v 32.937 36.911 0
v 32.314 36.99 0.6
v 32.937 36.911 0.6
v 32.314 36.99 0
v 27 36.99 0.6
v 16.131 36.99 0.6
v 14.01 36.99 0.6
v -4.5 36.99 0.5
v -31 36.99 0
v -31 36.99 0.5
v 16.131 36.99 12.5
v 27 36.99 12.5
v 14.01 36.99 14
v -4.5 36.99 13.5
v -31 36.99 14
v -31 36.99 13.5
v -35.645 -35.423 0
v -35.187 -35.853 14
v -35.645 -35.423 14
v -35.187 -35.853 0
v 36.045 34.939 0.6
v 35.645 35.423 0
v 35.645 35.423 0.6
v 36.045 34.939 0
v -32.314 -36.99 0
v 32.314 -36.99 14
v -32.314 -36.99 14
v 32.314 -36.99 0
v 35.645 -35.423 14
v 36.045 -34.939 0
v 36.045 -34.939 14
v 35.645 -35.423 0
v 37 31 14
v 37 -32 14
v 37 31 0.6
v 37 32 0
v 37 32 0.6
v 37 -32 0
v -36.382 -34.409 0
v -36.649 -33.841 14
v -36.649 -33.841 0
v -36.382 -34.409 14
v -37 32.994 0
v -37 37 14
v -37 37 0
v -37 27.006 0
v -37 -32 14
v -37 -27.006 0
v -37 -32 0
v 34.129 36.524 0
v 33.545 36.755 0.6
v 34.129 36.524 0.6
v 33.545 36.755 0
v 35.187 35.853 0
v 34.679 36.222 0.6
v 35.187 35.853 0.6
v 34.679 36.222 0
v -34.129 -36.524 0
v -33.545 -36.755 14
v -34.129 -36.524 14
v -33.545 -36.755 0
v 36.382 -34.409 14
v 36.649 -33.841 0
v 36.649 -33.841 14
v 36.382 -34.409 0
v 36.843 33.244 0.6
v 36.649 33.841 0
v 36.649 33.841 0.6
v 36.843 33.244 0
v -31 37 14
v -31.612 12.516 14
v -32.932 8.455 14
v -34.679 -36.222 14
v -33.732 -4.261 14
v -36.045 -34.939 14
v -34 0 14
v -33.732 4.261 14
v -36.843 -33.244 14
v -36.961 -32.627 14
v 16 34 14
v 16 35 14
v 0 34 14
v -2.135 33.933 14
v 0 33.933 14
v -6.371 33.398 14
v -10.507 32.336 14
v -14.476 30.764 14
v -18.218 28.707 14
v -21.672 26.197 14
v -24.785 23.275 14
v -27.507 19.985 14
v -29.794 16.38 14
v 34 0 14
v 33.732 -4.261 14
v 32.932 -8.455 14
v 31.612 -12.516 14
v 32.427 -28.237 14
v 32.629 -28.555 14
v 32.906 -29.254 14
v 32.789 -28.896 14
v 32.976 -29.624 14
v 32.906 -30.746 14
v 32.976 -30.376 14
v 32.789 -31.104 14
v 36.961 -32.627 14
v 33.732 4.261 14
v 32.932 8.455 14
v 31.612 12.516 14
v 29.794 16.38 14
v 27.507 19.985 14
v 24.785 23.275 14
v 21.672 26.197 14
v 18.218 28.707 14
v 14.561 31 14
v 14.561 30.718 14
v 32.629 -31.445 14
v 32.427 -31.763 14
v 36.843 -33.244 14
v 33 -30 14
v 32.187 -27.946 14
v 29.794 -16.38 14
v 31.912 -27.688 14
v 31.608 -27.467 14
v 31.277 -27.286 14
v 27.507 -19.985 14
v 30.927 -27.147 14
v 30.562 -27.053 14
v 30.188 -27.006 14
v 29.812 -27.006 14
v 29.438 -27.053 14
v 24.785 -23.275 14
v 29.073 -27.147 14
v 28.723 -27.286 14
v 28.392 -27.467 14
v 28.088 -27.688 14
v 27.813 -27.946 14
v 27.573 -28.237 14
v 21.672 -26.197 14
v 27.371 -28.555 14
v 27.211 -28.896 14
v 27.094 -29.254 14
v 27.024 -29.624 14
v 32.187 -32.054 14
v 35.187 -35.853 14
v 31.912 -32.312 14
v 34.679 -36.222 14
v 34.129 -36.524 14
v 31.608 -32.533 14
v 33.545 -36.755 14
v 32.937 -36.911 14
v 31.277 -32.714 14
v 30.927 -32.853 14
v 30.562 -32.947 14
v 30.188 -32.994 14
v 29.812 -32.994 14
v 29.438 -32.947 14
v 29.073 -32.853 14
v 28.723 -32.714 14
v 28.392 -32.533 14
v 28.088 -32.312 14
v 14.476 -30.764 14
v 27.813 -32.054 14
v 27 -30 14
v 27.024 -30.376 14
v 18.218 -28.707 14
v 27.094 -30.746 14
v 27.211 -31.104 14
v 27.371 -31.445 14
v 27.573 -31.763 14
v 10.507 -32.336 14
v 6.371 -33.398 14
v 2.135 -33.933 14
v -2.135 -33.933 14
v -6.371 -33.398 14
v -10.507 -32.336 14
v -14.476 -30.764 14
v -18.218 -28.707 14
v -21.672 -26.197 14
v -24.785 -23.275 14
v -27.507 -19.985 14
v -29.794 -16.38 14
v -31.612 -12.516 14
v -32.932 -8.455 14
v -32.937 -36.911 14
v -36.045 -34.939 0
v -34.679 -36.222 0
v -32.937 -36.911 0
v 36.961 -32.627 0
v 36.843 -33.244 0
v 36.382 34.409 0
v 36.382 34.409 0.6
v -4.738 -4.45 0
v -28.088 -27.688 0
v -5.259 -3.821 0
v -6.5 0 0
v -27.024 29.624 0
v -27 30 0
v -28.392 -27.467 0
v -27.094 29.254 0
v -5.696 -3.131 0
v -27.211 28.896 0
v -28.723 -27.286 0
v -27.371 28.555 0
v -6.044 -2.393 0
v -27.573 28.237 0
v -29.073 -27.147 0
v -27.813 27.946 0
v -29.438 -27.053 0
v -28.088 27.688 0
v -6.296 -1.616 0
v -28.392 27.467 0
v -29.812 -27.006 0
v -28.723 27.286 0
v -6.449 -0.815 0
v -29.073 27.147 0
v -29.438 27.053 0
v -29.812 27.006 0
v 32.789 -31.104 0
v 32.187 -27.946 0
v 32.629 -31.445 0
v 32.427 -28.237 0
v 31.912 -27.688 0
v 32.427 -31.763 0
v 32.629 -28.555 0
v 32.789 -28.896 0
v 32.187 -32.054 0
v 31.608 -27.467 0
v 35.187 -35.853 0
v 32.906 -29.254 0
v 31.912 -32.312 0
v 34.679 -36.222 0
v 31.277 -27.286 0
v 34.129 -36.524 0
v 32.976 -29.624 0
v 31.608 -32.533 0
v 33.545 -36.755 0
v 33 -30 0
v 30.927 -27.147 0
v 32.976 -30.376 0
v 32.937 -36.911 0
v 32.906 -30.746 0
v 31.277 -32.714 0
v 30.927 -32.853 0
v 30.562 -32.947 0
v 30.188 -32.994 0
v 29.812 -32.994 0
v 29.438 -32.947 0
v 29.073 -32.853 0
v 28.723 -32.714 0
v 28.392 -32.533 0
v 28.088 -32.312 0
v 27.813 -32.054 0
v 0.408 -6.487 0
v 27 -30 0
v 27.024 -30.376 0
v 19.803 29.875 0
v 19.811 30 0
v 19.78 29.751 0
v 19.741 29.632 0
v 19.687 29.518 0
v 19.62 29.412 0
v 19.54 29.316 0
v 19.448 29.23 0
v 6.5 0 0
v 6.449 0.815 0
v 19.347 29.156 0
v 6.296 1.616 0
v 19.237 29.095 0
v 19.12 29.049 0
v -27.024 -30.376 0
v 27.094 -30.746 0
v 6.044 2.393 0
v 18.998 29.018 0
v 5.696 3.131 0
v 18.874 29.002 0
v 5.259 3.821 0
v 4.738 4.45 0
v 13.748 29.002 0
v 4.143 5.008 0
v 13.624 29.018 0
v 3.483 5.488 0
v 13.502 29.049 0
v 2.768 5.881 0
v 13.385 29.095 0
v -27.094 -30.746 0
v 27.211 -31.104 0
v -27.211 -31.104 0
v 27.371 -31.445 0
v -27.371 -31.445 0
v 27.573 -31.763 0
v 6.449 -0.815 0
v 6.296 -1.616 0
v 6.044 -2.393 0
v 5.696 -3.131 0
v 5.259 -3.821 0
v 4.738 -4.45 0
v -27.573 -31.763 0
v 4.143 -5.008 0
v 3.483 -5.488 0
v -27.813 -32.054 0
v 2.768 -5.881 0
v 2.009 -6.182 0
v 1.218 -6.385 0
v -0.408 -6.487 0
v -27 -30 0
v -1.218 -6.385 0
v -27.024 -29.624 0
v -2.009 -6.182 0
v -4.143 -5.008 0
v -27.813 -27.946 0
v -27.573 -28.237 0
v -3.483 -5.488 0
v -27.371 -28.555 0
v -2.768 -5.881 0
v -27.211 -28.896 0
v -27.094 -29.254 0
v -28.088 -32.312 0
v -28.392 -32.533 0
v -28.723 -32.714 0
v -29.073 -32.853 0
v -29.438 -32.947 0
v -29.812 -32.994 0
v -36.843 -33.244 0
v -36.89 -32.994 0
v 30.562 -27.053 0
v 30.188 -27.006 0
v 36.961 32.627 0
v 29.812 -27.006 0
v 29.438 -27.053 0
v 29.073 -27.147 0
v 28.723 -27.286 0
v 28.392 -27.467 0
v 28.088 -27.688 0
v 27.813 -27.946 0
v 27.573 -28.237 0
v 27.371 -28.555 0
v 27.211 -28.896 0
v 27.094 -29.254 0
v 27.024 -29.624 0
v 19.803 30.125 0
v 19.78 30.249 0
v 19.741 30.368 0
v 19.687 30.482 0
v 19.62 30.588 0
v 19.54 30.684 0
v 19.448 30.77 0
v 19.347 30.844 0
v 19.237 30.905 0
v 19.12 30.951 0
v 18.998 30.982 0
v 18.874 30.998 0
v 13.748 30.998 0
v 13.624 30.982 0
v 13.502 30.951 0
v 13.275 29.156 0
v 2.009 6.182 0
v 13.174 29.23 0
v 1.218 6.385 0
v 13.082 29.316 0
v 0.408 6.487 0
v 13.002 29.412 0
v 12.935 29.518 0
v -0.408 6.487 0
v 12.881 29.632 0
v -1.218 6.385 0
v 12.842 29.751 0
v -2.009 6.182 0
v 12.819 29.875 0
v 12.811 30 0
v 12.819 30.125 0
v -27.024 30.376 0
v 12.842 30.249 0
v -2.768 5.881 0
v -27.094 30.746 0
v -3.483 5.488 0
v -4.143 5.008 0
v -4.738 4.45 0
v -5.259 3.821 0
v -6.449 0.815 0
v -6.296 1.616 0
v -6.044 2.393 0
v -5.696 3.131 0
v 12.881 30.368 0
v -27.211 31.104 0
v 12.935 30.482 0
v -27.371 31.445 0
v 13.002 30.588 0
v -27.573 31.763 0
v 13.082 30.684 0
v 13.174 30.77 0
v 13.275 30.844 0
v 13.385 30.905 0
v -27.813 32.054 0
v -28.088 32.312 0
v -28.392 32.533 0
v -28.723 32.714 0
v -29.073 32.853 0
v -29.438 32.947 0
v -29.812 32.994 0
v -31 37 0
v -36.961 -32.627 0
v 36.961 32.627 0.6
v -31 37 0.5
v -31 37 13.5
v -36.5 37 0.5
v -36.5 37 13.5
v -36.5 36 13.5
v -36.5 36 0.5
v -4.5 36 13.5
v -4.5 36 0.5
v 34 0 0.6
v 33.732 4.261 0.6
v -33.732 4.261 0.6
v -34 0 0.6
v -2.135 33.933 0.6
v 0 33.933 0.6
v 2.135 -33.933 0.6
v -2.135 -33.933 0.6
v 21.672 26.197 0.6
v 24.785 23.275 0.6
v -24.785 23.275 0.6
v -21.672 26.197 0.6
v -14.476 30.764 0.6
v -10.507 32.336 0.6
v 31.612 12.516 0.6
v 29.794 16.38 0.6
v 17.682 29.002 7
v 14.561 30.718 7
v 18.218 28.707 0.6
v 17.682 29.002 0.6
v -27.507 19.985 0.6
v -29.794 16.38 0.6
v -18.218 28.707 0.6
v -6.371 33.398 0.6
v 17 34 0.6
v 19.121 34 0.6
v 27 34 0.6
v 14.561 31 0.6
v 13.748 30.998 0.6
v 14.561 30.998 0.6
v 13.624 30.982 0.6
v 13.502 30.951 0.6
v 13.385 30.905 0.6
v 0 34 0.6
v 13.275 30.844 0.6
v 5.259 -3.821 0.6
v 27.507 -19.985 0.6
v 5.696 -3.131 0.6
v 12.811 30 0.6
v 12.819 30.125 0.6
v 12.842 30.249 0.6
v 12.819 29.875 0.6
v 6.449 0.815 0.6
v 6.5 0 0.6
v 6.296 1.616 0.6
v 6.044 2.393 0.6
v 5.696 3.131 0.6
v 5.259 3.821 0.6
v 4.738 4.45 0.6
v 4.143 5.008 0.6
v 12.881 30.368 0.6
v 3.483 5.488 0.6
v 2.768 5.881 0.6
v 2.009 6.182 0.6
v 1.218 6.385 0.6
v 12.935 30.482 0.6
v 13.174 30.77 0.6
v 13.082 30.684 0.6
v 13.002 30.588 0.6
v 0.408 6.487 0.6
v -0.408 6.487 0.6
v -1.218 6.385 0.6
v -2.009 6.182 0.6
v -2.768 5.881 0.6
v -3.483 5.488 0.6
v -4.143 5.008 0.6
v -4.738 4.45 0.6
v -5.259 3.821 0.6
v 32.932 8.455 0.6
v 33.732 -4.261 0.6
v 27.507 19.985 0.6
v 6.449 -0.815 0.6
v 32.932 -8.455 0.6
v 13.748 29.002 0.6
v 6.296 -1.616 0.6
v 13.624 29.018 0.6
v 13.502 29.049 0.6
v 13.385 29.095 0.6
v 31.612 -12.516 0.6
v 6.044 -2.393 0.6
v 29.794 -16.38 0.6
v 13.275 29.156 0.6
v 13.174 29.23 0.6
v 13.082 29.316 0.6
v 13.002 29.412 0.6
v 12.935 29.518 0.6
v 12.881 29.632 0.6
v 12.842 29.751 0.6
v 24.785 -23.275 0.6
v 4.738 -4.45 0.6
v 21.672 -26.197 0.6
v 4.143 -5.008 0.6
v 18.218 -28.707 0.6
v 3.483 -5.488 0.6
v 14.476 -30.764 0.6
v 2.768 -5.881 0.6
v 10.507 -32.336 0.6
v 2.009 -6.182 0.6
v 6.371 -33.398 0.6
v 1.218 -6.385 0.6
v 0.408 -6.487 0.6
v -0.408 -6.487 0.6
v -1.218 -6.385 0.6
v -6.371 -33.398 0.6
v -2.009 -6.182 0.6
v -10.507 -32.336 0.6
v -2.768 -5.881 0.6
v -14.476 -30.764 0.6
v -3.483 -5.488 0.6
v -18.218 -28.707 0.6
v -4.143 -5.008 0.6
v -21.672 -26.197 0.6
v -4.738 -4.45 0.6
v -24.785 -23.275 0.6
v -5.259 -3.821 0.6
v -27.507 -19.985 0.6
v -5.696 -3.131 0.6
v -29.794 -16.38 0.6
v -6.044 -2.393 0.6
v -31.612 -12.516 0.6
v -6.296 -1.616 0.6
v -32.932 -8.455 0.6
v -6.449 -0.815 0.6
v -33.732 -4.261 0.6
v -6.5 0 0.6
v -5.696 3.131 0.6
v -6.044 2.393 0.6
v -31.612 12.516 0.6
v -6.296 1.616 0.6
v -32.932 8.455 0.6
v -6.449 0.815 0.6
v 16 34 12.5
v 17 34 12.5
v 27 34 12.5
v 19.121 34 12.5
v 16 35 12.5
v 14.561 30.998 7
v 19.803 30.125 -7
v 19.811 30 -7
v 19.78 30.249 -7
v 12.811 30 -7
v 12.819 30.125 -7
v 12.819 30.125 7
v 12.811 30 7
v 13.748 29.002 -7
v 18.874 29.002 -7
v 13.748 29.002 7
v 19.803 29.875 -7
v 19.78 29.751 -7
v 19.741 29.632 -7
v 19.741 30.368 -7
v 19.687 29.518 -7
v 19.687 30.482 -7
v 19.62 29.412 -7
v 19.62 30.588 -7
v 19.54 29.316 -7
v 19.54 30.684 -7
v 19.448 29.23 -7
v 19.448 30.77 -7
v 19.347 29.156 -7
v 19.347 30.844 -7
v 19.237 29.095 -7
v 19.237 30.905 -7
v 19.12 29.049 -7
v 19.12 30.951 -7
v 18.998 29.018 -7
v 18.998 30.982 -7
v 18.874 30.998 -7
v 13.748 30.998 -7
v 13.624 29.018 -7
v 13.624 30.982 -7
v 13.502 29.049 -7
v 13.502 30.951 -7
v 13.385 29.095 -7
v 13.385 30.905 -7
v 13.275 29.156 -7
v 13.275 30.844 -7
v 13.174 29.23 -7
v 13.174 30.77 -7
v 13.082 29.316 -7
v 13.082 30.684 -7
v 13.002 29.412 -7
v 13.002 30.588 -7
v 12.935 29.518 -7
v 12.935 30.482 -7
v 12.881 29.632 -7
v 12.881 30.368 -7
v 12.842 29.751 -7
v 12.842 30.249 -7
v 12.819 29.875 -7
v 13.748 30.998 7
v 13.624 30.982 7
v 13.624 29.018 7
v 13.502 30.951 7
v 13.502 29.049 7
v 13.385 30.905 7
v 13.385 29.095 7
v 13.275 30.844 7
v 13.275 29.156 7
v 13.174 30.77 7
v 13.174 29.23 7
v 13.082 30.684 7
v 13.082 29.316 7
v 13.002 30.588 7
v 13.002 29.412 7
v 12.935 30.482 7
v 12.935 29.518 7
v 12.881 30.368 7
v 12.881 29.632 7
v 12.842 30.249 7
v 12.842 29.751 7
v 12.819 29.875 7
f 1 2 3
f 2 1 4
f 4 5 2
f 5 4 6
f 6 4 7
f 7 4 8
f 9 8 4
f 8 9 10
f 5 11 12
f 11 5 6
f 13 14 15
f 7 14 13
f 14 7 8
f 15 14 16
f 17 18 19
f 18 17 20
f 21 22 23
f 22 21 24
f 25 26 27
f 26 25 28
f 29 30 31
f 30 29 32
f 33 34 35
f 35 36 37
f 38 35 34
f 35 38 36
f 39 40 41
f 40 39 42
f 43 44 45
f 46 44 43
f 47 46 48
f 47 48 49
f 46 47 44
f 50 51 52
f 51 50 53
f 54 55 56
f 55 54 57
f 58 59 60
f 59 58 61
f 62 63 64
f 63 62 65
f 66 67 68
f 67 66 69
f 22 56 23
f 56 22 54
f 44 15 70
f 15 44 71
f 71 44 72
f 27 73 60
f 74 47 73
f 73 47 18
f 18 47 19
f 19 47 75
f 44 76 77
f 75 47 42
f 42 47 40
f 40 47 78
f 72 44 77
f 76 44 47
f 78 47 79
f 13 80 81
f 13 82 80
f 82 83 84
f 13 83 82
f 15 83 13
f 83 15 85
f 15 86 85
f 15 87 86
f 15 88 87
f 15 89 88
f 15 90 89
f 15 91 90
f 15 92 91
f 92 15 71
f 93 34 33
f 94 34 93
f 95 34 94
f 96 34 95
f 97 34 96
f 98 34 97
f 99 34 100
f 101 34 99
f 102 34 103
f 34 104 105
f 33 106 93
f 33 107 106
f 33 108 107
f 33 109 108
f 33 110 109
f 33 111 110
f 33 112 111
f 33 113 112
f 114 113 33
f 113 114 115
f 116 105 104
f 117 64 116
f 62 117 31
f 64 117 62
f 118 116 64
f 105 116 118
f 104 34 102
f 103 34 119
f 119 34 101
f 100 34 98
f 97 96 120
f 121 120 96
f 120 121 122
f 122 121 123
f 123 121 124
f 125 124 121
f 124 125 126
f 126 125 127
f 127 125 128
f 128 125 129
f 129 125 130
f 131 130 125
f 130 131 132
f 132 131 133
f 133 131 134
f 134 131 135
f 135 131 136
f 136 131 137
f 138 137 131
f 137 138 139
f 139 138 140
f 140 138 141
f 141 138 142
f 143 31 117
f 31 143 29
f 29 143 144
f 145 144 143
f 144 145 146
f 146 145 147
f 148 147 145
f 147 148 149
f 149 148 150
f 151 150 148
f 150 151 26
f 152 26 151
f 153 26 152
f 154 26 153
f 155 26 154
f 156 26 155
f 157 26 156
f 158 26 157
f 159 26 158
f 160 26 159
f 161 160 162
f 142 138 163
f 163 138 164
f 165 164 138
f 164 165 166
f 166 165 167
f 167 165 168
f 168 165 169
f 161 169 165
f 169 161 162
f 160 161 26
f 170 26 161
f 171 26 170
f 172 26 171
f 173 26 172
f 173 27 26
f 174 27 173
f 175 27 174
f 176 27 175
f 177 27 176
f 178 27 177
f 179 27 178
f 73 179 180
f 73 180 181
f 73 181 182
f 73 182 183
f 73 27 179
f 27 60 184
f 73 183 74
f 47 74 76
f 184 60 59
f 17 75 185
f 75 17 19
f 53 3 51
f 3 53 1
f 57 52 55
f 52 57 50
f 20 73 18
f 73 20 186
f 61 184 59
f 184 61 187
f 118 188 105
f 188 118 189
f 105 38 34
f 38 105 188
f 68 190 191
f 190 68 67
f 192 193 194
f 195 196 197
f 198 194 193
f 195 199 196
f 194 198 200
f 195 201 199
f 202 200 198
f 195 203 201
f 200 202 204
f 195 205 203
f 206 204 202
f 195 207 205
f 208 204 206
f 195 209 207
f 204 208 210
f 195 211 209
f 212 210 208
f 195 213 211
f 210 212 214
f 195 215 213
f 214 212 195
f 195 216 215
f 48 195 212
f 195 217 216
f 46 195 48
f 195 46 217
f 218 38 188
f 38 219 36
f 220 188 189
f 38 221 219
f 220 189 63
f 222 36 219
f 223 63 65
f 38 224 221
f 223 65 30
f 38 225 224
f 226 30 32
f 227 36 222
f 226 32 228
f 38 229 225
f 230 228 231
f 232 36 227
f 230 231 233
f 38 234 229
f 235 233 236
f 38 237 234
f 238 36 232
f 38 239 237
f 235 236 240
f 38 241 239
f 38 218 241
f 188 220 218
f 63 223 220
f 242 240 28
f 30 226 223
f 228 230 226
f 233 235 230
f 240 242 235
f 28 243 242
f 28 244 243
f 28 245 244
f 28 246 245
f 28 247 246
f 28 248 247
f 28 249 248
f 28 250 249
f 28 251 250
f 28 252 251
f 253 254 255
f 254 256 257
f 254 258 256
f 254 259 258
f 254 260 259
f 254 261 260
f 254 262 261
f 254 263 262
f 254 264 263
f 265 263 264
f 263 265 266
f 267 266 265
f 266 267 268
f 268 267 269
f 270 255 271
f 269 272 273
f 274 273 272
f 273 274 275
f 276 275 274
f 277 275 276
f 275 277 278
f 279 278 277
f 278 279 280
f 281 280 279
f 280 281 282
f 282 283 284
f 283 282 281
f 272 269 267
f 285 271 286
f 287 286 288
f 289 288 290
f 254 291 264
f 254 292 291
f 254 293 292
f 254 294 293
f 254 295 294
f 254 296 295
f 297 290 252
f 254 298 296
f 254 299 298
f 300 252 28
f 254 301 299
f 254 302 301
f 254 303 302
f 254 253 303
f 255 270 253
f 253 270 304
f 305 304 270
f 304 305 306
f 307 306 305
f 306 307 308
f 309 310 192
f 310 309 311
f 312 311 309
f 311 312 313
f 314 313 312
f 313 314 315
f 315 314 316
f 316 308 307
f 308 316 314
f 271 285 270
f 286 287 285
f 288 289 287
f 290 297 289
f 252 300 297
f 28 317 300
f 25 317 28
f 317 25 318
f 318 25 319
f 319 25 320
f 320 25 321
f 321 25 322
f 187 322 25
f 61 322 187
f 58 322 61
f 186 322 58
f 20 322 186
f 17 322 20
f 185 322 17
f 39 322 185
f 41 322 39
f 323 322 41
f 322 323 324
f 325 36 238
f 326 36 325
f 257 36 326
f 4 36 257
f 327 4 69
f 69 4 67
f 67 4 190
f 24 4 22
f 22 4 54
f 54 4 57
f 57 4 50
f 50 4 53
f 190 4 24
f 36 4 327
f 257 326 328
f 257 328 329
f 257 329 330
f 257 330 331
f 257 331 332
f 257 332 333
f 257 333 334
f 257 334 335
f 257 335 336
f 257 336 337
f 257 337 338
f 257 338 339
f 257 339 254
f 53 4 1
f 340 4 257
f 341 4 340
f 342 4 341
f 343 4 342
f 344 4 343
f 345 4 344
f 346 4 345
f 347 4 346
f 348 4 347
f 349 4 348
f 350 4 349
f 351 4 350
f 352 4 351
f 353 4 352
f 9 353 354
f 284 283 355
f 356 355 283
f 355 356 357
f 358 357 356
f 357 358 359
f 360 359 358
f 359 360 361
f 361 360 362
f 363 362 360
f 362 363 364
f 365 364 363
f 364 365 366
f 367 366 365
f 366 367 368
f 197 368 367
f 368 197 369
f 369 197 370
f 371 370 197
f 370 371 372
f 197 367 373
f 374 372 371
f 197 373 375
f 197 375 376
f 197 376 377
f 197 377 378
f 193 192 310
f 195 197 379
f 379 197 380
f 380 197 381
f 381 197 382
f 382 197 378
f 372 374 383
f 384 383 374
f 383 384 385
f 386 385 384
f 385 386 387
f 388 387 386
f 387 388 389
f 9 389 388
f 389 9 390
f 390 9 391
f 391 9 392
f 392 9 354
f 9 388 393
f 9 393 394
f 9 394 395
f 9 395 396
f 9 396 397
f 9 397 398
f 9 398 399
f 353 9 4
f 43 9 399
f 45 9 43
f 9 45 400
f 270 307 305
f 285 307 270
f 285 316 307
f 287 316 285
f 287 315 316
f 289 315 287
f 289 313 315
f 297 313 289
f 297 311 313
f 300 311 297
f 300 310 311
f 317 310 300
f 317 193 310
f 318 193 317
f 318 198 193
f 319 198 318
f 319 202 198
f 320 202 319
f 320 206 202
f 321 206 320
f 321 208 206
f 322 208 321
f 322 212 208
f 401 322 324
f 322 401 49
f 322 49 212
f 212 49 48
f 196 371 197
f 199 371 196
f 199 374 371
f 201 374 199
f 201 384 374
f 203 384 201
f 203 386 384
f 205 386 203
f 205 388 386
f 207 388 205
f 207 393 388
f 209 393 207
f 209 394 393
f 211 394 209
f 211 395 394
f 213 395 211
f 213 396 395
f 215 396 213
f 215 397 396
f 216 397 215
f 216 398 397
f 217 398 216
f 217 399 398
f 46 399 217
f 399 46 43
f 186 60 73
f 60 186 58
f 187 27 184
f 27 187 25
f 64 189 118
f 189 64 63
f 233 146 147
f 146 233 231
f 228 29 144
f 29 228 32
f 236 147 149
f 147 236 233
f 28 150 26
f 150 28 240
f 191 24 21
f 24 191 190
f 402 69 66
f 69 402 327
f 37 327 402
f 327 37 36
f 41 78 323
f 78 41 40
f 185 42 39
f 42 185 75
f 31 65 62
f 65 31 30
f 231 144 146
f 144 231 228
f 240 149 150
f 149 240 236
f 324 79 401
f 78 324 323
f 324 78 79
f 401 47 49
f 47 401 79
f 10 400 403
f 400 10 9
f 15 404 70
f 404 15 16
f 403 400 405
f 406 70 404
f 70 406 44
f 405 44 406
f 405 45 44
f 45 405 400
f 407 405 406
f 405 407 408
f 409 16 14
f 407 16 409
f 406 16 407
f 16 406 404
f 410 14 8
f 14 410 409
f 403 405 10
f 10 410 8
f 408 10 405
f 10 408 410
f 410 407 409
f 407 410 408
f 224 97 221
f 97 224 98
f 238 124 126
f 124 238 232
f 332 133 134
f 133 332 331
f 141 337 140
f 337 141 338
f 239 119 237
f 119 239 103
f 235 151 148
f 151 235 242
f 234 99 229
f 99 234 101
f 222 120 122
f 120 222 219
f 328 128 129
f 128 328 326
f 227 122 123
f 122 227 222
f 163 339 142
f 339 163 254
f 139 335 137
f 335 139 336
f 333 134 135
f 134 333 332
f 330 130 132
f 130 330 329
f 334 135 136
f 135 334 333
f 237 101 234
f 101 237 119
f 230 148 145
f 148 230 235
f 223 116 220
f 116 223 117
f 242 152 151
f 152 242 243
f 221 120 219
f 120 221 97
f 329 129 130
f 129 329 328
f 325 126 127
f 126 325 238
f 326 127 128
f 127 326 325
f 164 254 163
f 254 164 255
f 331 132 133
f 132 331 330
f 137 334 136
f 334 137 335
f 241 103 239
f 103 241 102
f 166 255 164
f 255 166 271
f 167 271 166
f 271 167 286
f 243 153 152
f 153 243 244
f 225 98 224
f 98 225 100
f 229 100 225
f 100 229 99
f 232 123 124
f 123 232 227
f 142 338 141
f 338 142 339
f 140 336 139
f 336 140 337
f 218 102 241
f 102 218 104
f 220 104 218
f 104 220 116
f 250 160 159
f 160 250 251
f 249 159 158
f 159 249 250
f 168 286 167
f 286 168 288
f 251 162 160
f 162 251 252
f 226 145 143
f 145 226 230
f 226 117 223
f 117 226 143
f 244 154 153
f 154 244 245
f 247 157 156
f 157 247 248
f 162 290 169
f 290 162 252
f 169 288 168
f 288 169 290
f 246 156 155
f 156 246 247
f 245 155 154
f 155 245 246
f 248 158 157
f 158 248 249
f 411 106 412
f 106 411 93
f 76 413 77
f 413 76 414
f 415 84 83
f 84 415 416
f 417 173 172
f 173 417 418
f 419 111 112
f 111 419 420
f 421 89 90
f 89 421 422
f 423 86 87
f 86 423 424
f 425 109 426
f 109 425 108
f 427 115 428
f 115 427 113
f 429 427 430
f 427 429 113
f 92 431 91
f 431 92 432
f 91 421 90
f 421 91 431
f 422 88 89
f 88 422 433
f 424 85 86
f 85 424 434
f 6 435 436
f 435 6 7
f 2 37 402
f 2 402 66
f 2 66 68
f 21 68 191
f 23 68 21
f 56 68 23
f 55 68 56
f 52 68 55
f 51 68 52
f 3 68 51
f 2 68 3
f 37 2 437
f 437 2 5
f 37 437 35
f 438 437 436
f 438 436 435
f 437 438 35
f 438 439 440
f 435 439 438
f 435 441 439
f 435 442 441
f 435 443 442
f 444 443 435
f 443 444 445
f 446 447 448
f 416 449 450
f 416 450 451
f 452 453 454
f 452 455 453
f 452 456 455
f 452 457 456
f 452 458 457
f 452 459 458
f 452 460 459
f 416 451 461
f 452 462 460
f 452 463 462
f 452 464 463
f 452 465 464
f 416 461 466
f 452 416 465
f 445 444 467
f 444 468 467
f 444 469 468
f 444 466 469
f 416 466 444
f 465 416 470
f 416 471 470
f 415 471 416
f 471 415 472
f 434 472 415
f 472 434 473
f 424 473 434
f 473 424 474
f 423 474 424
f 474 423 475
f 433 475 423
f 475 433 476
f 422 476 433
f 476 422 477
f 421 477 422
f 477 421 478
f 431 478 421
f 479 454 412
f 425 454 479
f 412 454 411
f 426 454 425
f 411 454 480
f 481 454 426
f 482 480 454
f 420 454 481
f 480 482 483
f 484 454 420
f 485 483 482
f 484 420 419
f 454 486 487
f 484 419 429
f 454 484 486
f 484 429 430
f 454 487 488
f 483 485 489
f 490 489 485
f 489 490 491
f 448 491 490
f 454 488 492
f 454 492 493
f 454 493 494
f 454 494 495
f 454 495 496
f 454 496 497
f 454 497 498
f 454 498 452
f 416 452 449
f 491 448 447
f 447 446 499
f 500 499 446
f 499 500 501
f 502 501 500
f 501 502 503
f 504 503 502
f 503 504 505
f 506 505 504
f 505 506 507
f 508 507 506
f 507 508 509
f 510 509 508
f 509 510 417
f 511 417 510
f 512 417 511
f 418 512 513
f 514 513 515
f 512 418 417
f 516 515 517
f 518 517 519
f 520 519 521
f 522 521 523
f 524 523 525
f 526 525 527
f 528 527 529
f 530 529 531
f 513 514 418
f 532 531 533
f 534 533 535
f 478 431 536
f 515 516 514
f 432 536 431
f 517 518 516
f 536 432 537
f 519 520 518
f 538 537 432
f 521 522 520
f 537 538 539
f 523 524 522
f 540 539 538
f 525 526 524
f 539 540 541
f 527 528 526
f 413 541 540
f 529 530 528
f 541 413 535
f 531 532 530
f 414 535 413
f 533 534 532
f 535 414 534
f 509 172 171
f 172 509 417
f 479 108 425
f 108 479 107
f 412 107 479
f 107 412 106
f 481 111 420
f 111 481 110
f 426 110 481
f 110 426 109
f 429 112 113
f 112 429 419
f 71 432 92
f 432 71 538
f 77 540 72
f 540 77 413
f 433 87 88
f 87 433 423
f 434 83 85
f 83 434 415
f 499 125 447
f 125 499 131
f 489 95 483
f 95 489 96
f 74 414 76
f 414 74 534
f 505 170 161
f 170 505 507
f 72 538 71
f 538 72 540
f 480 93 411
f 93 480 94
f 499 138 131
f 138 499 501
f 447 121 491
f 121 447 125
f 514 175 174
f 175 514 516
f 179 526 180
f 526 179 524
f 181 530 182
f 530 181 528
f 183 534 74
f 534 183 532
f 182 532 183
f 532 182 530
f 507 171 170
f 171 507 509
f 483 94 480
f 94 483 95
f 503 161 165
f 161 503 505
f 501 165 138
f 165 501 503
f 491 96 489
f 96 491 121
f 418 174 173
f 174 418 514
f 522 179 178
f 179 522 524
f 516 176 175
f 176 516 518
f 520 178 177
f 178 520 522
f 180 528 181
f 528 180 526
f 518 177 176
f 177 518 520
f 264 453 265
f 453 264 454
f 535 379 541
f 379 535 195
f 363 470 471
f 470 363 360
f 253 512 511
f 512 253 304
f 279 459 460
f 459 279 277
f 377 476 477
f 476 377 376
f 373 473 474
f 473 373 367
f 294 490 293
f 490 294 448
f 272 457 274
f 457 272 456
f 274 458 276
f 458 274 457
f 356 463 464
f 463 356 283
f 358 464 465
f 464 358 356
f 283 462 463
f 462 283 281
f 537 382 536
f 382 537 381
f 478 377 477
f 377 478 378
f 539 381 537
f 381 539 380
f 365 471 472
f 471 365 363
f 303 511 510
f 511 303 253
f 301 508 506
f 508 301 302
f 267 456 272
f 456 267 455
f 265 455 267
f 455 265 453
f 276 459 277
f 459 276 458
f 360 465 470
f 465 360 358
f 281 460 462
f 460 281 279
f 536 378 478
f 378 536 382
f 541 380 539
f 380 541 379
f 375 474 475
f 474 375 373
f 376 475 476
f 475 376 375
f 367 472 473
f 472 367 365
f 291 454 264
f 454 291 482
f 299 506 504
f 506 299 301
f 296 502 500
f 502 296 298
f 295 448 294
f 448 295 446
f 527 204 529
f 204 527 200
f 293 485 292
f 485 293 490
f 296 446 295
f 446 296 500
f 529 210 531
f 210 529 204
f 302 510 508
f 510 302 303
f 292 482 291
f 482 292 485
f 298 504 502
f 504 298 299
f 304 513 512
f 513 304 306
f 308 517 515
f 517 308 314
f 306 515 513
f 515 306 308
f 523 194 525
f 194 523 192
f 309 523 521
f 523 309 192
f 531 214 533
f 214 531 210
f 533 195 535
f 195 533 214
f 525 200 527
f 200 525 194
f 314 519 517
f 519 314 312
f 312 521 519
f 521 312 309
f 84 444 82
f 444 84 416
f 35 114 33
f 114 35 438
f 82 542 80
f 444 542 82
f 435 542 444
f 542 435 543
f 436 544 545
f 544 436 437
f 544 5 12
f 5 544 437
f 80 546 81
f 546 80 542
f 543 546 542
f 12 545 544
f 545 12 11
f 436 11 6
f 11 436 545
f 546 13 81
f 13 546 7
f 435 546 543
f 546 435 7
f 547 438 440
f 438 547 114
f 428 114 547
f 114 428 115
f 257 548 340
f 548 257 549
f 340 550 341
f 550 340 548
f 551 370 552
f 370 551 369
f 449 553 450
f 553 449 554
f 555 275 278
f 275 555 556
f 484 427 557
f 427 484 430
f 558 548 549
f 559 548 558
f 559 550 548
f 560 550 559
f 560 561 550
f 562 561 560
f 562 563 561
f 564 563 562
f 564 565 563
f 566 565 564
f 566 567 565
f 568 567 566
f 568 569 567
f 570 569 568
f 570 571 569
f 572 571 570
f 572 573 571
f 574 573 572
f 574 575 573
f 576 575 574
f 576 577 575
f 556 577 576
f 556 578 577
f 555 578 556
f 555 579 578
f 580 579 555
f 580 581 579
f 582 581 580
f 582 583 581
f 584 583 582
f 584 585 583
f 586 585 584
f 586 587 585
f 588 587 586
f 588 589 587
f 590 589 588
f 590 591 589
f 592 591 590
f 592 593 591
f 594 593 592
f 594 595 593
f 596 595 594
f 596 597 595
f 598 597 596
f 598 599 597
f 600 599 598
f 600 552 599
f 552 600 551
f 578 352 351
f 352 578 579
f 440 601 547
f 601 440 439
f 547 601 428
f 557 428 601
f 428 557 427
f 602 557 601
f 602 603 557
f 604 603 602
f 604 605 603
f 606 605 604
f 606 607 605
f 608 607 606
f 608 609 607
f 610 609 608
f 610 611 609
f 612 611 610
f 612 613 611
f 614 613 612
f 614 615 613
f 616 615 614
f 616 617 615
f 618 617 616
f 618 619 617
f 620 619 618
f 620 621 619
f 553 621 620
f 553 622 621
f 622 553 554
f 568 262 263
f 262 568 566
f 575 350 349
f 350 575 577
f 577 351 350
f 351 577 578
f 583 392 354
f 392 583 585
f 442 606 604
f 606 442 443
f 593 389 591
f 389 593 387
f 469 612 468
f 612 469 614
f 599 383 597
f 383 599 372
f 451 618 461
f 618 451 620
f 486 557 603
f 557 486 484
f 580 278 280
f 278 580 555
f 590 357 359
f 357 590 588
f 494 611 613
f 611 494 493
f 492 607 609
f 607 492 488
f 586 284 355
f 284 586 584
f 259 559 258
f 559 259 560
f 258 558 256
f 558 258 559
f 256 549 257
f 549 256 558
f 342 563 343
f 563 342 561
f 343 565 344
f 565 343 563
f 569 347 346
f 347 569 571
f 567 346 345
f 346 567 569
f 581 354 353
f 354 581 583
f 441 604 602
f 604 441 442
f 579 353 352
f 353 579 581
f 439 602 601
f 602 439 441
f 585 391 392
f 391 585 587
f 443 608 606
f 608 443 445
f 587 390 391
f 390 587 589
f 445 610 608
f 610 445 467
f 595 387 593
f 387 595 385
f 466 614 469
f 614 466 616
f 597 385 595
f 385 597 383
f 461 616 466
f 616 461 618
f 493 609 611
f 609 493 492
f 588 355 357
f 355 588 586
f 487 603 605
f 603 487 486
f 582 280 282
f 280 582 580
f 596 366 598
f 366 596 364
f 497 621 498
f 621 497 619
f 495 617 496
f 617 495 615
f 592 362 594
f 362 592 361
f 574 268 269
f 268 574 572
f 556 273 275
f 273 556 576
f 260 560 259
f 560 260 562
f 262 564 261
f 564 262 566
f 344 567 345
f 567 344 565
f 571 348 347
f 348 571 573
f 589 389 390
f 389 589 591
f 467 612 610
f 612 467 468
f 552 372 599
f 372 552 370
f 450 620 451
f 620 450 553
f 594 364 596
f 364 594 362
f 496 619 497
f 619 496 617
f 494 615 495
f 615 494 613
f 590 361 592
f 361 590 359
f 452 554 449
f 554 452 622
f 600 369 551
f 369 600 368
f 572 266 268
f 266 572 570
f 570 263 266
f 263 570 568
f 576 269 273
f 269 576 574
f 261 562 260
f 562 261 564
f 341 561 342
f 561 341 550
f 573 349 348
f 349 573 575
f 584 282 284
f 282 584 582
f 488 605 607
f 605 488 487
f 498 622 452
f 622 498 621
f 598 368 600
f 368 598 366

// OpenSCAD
$fn = 50;


union() {
	difference() {
		union() {
			hull() {
				translate(v = [-32.0000000000, 32.0000000000, 0]) {
					cylinder(h = 14, r = 5);
				}
				translate(v = [32.0000000000, 32.0000000000, 0]) {
					cylinder(h = 14, r = 5);
				}
				translate(v = [-32.0000000000, -32.0000000000, 0]) {
					cylinder(h = 14, r = 5);
				}
				translate(v = [32.0000000000, -32.0000000000, 0]) {
					cylinder(h = 14, r = 5);
				}
			}
			translate(v = [-37.0000000000, 31.0000000000, 0]) {
				cube(size = [6, 6, 14]);
			}
		}
		union() {
			translate(v = [-37.5000000000, -30.0000000000, -250.0000000000]) {
				rotate(a = [0, 0, 0]) {
					difference() {
						union() {
							hull() {
								translate(v = [7.5000000000, 0, 0]) {
									cylinder(h = 250, r = 3.0000000000, r1 = 3.0000000000, r2 = 3.0000000000);
								}
								translate(v = [-7.5000000000, 0, 0]) {
									cylinder(h = 250, r = 3.0000000000, r1 = 3.0000000000, r2 = 3.0000000000);
								}
							}
						}
						union();
					}
				}
			}
			translate(v = [-37.5000000000, 30.0000000000, -250.0000000000]) {
				rotate(a = [0, 0, 0]) {
					difference() {
						union() {
							hull() {
								translate(v = [7.5000000000, 0, 0]) {
									cylinder(h = 250, r = 3.0000000000, r1 = 3.0000000000, r2 = 3.0000000000);
								}
								translate(v = [-7.5000000000, 0, 0]) {
									cylinder(h = 250, r = 3.0000000000, r1 = 3.0000000000, r2 = 3.0000000000);
								}
							}
						}
						union();
					}
				}
			}
			translate(v = [-36.5000000000, 36.0000000000, 0.5000000000]) {
				cube(size = [32, 1, 13.0000000000]);
			}
			translate(v = [30.0000000000, -30.0000000000, 0]) {
				cylinder(h = 100, r = 3.0000000000);
			}
			translate(v = [0, 0, 0.6000000000]) {
				cylinder(h = 16.4000000000, r = 34.0000000000);
			}
			translate(v = [0, 0, -7.0000000000]) {
				cylinder(h = 14, r = 6.5000000000);
			}
			translate(v = [0.0000000000, 31.0000000000, 0.6000000000]) {
				cube(size = [37.0000000000, 3, 16.4000000000]);
			}
			translate(v = [27.0000000000, 31.0000000000, 0.6000000000]) {
				cube(size = [10, 6, 16.4000000000]);
			}
			translate(v = [16.0000000000, 31.0000000000, 12.5000000000]) {
				cube(size = [21, 6, 1.5000000000]);
			}
			translate(v = [13.2500000000, 37.7500000000, 0.6000000000]) {
				rotate(a = [0, 0, -45]) {
					cube(size = [7.5000000000, 1.5000000000, 16.4000000000]);
				}
			}
			translate(v = [7.0610000000, 29.0000000000, 0.6000000000]) {
				cube(size = [7.5000000000, 2, 13.4000000000]);
			}
		}
	}
	union() {
		translate(v = [16.3110000000, 30.0000000000, -7.0000000000]) {
			rotate(a = [0, 0, 0]) {
				difference() {
					union() {
						#hull() {
							#translate(v = [2.5000000000, 0, 0]) {
								cylinder(h = 14, r = 1.0000000000, r1 = 1.0000000000, r2 = 1.0000000000);
							}
							#translate(v = [-2.5000000000, 0, 0]) {
								cylinder(h = 14, r = 1.0000000000, r1 = 1.0000000000, r2 = 1.0000000000);
							}
						}
					}
					union();
				}
			}
		}
	}
}
